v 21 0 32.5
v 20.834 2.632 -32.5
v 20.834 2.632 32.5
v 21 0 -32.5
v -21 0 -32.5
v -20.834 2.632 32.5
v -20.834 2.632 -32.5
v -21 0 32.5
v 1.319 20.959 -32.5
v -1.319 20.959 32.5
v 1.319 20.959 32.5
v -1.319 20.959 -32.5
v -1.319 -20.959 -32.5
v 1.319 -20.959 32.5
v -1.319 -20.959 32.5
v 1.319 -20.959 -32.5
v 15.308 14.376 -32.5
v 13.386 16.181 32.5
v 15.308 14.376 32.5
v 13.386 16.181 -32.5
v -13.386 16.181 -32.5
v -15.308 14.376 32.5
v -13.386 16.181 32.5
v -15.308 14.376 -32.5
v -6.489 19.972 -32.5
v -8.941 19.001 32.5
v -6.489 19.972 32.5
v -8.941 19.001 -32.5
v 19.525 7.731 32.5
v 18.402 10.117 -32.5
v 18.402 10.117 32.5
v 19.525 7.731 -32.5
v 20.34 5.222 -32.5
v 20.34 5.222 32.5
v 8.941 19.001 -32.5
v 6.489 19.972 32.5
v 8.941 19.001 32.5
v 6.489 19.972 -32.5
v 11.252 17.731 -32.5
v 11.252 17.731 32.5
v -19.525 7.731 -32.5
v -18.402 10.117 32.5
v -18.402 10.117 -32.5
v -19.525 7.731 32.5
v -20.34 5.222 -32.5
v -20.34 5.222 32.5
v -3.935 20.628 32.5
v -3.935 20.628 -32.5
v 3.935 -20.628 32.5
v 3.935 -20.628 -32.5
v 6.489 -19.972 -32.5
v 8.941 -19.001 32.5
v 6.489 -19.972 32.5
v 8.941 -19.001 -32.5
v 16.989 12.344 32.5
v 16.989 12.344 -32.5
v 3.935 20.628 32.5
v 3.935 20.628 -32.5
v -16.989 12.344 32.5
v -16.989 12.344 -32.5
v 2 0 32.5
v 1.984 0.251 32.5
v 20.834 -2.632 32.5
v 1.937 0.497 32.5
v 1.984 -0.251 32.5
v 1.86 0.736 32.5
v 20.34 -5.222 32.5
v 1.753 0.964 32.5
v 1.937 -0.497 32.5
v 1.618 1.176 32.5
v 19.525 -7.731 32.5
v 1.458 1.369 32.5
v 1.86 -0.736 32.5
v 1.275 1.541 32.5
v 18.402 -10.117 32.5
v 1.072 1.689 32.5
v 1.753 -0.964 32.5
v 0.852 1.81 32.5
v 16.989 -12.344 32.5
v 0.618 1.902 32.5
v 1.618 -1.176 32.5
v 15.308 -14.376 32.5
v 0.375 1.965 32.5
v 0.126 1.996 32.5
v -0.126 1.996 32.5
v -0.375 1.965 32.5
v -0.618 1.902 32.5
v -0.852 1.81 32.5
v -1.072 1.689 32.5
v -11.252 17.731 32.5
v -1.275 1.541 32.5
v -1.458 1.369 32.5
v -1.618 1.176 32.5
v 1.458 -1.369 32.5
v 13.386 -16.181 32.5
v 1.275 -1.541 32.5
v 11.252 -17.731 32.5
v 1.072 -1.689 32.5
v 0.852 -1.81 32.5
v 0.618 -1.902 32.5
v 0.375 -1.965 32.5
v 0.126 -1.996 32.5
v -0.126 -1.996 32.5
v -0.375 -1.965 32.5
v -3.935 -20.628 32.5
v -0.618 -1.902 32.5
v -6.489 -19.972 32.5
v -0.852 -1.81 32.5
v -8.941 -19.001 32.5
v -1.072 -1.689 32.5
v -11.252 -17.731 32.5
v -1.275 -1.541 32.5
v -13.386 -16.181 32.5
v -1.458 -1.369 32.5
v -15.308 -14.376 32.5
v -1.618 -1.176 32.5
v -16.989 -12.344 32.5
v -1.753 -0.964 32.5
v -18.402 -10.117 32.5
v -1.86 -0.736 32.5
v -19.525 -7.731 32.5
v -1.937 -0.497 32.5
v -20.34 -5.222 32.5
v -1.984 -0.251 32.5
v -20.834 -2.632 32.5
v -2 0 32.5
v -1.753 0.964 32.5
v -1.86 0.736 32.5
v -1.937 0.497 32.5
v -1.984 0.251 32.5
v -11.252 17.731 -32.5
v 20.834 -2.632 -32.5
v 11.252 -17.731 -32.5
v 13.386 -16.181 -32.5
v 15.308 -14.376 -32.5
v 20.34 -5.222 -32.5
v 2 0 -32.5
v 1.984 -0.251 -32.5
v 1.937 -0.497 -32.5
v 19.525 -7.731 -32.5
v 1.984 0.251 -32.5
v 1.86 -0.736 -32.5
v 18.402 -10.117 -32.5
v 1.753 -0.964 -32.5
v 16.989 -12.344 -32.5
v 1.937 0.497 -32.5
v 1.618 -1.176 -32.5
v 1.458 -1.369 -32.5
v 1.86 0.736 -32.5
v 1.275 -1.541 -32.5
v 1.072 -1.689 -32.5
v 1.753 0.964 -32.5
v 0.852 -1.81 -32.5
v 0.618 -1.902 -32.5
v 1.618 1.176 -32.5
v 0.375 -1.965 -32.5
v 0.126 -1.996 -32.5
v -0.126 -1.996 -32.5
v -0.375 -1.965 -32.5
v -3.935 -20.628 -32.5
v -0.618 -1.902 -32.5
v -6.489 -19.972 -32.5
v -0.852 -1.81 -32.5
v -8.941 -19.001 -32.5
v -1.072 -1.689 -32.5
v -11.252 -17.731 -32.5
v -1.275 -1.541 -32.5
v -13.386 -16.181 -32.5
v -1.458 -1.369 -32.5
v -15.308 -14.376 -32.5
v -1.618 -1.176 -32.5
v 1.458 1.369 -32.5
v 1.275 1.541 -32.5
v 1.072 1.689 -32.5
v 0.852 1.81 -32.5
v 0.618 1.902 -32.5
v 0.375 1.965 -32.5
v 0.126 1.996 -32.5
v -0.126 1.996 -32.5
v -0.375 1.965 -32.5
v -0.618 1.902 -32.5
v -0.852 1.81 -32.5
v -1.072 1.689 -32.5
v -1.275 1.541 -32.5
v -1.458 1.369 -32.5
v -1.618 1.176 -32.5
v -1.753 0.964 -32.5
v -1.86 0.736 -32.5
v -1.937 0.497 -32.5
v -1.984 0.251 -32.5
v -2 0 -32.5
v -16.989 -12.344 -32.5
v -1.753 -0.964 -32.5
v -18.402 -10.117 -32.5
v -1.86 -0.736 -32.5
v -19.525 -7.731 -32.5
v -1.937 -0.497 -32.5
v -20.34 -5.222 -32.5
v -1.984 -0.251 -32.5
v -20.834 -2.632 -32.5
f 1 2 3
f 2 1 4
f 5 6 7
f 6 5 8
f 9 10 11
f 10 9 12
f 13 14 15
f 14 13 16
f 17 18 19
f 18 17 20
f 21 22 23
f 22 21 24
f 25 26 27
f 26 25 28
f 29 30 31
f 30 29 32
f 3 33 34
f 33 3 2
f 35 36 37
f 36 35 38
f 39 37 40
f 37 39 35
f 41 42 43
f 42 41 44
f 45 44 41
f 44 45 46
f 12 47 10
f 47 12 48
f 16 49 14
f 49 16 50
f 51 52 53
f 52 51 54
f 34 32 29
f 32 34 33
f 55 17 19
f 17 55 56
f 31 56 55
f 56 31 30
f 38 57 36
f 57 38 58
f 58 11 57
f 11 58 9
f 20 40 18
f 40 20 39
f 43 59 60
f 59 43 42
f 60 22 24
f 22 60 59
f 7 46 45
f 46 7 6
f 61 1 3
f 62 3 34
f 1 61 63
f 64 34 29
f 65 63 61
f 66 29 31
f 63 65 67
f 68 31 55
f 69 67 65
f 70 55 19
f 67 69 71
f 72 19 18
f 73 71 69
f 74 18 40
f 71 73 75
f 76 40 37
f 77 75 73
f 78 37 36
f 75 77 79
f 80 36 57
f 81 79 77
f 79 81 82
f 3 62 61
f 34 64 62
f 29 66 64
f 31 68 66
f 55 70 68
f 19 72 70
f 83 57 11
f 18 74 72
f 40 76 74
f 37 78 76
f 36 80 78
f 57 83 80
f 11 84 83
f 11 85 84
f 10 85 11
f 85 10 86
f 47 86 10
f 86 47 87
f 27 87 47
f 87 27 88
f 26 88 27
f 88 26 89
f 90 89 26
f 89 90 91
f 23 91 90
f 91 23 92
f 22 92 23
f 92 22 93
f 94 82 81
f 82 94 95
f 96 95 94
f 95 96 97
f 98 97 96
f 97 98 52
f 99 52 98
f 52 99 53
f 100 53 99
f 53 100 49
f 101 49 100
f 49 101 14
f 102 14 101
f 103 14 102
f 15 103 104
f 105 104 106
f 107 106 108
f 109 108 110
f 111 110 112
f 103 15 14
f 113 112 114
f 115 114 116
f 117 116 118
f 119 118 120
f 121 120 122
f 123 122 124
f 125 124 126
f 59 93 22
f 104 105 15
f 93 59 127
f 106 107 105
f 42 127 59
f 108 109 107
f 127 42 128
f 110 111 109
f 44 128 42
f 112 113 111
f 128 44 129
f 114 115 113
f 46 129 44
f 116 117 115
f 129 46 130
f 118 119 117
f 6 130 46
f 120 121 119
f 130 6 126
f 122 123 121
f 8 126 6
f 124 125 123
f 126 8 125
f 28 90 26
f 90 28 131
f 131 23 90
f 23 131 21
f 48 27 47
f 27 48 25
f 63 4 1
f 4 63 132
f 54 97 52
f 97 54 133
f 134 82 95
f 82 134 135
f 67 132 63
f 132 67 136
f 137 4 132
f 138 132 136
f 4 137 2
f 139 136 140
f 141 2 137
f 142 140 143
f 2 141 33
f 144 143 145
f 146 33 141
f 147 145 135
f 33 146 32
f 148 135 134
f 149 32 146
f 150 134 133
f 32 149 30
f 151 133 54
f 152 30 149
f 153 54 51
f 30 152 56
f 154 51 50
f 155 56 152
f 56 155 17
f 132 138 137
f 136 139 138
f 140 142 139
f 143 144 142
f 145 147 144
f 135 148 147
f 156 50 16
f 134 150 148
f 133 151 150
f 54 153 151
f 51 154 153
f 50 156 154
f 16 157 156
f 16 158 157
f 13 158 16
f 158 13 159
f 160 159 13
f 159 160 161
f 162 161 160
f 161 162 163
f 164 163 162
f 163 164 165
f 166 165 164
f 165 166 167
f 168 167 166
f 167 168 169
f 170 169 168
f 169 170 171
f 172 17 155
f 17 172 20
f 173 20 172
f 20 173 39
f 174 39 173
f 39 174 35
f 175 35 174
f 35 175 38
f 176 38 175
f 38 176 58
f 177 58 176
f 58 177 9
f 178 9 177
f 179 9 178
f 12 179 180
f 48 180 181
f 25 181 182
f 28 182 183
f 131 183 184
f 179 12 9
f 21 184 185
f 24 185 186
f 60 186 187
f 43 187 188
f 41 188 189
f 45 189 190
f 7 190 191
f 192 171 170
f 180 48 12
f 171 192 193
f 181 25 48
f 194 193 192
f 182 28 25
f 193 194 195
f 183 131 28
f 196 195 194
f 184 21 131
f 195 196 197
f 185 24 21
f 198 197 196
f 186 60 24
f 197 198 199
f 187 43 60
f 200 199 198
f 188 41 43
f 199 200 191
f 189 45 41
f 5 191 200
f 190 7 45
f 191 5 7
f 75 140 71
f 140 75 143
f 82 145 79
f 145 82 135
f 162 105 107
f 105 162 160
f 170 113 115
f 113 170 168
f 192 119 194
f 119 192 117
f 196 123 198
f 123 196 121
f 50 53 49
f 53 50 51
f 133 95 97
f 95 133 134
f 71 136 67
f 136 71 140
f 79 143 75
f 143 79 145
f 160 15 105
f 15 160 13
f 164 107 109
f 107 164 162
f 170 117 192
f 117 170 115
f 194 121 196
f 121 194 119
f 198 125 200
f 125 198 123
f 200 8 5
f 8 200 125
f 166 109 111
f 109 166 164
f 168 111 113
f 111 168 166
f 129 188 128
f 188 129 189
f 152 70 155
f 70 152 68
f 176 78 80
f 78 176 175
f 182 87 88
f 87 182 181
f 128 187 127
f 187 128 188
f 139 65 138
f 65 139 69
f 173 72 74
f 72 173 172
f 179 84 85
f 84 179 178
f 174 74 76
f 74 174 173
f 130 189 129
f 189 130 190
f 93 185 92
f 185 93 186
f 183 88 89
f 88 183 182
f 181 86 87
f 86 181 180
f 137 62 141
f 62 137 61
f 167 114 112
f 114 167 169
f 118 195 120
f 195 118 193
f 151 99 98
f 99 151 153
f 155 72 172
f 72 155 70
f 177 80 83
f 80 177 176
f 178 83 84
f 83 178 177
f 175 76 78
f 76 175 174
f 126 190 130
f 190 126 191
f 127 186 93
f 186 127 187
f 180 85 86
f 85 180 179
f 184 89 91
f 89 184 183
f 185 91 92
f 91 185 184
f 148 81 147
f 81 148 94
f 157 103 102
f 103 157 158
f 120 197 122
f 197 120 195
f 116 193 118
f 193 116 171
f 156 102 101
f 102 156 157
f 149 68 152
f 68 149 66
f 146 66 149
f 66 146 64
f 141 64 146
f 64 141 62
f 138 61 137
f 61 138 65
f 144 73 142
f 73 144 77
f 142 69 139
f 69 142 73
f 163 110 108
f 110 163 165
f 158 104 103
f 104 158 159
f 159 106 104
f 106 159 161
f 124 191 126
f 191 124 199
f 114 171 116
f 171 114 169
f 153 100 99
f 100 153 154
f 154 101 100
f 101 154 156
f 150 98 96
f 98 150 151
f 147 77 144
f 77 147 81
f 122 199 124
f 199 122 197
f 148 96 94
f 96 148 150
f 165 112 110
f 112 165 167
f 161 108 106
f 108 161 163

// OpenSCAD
$fn = 50;


difference() {
	union() {
		translate(v = [0, 0, -32.5000000000]) {
			cylinder(h = 65, r = 21.0000000000);
		}
	}
	union() {
		translate(v = [0, 0, -100.0000000000]) {
			cylinder(h = 200, r = 2);
		}
	}
}
